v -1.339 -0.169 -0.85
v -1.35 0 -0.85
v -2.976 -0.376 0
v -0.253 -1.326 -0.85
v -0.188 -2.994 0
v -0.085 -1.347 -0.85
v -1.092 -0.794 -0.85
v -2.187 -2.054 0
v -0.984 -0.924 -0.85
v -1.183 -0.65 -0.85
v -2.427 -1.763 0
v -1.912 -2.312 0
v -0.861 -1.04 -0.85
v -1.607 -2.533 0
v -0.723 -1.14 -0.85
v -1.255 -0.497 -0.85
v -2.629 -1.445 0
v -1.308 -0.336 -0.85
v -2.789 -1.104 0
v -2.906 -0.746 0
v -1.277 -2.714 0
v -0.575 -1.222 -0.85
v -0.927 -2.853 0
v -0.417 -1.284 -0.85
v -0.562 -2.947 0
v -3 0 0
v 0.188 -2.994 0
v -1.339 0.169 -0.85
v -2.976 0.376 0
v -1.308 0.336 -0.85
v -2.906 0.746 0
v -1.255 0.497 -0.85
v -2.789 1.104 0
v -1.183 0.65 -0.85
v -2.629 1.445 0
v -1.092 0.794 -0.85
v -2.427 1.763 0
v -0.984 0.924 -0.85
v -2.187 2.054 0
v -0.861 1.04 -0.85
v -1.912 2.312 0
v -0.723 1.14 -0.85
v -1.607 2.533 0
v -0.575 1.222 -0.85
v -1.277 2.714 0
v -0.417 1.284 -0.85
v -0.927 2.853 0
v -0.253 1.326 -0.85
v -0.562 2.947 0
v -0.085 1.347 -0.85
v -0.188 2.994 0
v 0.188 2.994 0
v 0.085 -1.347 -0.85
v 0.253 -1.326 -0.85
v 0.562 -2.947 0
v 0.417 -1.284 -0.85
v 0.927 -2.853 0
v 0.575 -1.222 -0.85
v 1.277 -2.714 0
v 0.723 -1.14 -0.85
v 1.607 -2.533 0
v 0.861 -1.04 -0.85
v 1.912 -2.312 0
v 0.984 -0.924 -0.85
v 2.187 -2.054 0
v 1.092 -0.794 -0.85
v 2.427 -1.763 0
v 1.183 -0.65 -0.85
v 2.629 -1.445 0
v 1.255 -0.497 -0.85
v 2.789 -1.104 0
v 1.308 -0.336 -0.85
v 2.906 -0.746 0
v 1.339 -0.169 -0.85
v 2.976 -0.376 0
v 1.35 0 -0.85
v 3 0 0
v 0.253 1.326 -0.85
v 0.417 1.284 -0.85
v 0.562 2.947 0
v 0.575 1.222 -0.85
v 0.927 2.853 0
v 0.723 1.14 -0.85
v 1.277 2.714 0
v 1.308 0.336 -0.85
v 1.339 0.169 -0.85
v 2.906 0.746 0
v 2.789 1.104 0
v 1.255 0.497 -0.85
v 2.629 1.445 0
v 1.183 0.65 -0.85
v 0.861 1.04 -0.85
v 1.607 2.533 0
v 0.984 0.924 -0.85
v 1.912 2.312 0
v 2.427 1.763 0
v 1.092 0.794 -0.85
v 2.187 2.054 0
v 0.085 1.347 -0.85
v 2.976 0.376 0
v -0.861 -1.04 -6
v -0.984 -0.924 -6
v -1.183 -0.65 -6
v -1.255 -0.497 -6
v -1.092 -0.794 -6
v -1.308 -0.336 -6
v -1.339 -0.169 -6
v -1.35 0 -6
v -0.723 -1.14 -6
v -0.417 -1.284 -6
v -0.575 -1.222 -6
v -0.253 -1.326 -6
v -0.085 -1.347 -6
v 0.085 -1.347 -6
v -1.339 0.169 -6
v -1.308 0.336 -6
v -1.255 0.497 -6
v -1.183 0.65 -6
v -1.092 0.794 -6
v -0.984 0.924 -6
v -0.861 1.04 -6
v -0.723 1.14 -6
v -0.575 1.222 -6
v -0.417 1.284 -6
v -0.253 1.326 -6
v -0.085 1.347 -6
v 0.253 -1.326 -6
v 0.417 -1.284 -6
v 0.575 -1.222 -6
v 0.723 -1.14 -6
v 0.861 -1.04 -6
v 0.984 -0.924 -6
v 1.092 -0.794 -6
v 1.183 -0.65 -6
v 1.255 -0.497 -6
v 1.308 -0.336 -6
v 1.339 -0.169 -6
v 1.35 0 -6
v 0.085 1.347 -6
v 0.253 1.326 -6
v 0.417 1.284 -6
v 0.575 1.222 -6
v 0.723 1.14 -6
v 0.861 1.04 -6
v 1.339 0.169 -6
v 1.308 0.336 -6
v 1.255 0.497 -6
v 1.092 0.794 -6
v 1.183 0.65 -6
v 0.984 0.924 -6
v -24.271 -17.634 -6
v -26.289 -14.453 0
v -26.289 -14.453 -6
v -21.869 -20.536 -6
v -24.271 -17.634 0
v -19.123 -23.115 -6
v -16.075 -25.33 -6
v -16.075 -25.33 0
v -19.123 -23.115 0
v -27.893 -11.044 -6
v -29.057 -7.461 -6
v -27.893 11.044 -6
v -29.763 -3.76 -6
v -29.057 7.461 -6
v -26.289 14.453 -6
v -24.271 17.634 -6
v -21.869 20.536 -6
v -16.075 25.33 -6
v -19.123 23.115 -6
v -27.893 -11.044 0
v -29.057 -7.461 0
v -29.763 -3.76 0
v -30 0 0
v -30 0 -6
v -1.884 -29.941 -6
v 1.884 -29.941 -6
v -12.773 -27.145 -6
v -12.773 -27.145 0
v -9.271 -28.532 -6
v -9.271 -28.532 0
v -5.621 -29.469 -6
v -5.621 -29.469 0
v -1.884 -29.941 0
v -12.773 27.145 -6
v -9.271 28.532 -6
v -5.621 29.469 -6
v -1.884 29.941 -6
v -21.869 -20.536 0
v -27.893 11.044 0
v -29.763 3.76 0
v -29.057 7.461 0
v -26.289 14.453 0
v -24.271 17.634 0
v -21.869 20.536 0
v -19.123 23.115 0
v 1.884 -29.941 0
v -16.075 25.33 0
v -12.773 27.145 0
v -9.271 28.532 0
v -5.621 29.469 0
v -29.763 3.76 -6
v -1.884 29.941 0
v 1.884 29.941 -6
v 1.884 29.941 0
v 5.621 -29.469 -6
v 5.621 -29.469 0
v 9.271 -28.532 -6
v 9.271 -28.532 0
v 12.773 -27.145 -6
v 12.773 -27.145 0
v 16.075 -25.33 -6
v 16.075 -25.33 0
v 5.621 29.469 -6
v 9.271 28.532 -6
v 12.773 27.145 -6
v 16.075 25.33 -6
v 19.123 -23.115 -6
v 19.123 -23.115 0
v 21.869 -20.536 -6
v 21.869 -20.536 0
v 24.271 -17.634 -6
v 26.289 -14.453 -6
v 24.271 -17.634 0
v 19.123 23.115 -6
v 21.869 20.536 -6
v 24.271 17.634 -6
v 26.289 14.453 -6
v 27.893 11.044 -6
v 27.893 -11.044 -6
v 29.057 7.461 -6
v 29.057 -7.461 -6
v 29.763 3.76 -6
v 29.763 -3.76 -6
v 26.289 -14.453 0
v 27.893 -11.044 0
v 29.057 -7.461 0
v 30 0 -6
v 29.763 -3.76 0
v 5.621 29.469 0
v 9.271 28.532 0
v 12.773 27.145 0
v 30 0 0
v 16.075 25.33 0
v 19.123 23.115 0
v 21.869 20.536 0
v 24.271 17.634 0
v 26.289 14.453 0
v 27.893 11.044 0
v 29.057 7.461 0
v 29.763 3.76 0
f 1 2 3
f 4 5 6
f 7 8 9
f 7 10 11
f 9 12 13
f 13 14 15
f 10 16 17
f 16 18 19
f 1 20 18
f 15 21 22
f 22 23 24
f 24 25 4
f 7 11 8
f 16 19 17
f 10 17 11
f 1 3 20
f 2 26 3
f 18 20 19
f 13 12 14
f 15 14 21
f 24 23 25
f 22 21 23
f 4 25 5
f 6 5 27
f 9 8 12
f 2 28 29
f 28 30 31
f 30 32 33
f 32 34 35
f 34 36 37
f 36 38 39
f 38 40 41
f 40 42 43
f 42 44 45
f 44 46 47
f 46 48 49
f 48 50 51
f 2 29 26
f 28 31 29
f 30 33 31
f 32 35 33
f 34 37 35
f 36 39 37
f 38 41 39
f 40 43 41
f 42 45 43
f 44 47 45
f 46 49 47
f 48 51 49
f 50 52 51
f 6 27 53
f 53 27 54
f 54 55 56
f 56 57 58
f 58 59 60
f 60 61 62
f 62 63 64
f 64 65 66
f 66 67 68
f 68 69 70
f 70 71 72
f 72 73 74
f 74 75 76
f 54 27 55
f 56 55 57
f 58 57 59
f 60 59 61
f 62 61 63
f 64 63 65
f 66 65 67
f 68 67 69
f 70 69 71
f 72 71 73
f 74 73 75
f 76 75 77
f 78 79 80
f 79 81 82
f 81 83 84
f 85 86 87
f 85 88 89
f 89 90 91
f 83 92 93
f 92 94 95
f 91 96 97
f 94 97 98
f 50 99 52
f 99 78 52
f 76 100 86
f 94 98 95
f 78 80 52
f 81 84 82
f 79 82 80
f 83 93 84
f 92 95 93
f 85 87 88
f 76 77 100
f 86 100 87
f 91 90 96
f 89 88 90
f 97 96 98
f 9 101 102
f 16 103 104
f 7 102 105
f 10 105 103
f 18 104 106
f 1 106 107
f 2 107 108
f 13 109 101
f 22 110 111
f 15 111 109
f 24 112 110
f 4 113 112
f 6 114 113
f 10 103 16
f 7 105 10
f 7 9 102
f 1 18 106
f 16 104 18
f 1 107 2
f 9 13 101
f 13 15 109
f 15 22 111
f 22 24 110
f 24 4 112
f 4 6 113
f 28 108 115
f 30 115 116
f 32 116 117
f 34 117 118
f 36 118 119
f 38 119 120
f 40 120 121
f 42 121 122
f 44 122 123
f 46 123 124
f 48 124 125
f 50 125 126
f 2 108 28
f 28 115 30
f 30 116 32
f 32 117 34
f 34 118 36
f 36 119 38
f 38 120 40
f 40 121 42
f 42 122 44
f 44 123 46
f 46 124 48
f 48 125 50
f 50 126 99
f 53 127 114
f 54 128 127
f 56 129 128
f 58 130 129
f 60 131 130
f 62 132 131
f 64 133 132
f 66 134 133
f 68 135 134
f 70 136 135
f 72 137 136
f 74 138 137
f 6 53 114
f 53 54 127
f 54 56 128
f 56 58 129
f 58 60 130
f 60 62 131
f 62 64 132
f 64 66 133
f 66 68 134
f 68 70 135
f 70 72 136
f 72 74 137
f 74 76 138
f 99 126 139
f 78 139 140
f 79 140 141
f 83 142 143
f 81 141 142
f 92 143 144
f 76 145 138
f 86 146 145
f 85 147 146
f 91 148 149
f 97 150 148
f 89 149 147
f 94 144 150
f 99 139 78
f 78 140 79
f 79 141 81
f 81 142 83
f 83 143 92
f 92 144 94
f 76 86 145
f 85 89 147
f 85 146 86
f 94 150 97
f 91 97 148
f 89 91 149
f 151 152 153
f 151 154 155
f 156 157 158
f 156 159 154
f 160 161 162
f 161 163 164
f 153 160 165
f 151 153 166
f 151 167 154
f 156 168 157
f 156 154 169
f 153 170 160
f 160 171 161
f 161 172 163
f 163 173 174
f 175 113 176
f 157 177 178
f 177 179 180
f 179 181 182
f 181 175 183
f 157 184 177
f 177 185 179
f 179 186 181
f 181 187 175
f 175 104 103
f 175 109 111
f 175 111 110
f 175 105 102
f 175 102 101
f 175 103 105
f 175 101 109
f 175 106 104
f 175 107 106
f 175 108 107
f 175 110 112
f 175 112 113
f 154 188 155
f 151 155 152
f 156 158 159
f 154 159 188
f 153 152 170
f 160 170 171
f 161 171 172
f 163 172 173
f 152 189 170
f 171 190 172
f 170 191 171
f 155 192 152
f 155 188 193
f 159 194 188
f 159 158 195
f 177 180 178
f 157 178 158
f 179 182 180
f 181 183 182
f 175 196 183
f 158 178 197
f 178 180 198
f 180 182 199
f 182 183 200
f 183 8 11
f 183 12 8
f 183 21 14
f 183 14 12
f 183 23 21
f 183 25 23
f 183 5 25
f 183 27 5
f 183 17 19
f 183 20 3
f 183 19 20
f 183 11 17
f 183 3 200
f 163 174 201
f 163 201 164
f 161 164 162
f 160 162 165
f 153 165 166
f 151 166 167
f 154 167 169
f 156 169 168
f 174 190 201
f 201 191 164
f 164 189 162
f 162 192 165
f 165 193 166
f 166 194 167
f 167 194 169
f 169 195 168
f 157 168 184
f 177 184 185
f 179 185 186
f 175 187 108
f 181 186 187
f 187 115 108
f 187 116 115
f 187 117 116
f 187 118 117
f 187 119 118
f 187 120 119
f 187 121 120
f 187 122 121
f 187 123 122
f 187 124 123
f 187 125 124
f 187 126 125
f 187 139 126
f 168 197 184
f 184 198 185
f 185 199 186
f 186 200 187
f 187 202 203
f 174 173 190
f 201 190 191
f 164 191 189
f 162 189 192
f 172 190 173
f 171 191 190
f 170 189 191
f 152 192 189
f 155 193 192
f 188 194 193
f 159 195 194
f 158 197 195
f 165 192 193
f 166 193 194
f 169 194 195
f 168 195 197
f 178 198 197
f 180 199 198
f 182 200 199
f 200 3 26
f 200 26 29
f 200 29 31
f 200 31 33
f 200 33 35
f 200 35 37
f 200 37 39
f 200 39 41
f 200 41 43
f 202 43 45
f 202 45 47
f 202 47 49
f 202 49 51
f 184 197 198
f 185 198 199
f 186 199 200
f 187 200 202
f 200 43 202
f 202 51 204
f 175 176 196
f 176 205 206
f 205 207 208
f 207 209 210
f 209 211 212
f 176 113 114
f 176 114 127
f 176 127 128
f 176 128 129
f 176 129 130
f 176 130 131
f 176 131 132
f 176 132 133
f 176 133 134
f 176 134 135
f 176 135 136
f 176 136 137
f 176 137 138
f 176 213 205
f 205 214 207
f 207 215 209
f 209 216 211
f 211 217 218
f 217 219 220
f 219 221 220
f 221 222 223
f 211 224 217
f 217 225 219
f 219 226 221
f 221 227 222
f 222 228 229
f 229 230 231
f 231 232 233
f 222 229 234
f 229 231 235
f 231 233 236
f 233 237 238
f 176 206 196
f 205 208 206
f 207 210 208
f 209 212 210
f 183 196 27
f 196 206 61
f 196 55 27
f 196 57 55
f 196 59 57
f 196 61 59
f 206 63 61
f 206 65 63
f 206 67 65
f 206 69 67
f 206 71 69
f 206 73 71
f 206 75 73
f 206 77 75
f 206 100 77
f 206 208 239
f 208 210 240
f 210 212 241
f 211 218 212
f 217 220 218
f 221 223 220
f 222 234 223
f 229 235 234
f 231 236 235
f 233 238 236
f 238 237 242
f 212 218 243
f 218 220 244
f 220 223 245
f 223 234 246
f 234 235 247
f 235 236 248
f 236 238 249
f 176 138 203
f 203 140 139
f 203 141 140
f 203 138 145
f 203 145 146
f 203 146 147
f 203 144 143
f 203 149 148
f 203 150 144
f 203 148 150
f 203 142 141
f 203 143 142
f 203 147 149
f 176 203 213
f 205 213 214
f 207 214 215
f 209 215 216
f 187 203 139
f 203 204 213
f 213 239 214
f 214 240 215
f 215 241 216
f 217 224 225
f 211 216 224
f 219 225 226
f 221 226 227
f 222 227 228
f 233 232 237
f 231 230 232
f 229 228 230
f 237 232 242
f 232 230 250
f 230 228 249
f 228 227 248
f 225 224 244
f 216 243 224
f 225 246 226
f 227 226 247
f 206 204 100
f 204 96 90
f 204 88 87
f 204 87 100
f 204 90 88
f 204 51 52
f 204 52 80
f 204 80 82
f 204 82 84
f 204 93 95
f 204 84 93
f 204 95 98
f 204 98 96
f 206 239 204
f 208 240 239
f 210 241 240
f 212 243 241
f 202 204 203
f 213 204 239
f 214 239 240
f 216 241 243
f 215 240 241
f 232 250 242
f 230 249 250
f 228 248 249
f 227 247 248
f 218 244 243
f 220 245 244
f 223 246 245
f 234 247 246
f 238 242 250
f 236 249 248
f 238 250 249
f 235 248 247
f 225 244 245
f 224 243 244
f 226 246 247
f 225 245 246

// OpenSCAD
$fn = 50;

difference() {
	union() {
		translate(v = [0, 0, -6.0]) {
			cylinder(h = 6, r = 30.0);
		}
	}
	union() {
		translate(v = [0, 0, 0]) {
			rotate(a = [0, 0, 0]) {
				difference() {
					union() {
						translate(v = [0, 0, -9.0]) {
							cylinder(h = 9, r = 1.0);
						}
						translate(v = [0, 0, -0.85]) {
							cylinder(h = 0.85, r1 = 1.35, r2 = 3.0);
						}
						translate(v = [0, 0, -9.0]) {
							cylinder(h = 9, r = 1.35);
						}
						translate(v = [0, 0, -9.0]) {
							cylinder(h = 9, r = 1.0);
						}
					}
					union();
				}
			}
		}
	}
}
